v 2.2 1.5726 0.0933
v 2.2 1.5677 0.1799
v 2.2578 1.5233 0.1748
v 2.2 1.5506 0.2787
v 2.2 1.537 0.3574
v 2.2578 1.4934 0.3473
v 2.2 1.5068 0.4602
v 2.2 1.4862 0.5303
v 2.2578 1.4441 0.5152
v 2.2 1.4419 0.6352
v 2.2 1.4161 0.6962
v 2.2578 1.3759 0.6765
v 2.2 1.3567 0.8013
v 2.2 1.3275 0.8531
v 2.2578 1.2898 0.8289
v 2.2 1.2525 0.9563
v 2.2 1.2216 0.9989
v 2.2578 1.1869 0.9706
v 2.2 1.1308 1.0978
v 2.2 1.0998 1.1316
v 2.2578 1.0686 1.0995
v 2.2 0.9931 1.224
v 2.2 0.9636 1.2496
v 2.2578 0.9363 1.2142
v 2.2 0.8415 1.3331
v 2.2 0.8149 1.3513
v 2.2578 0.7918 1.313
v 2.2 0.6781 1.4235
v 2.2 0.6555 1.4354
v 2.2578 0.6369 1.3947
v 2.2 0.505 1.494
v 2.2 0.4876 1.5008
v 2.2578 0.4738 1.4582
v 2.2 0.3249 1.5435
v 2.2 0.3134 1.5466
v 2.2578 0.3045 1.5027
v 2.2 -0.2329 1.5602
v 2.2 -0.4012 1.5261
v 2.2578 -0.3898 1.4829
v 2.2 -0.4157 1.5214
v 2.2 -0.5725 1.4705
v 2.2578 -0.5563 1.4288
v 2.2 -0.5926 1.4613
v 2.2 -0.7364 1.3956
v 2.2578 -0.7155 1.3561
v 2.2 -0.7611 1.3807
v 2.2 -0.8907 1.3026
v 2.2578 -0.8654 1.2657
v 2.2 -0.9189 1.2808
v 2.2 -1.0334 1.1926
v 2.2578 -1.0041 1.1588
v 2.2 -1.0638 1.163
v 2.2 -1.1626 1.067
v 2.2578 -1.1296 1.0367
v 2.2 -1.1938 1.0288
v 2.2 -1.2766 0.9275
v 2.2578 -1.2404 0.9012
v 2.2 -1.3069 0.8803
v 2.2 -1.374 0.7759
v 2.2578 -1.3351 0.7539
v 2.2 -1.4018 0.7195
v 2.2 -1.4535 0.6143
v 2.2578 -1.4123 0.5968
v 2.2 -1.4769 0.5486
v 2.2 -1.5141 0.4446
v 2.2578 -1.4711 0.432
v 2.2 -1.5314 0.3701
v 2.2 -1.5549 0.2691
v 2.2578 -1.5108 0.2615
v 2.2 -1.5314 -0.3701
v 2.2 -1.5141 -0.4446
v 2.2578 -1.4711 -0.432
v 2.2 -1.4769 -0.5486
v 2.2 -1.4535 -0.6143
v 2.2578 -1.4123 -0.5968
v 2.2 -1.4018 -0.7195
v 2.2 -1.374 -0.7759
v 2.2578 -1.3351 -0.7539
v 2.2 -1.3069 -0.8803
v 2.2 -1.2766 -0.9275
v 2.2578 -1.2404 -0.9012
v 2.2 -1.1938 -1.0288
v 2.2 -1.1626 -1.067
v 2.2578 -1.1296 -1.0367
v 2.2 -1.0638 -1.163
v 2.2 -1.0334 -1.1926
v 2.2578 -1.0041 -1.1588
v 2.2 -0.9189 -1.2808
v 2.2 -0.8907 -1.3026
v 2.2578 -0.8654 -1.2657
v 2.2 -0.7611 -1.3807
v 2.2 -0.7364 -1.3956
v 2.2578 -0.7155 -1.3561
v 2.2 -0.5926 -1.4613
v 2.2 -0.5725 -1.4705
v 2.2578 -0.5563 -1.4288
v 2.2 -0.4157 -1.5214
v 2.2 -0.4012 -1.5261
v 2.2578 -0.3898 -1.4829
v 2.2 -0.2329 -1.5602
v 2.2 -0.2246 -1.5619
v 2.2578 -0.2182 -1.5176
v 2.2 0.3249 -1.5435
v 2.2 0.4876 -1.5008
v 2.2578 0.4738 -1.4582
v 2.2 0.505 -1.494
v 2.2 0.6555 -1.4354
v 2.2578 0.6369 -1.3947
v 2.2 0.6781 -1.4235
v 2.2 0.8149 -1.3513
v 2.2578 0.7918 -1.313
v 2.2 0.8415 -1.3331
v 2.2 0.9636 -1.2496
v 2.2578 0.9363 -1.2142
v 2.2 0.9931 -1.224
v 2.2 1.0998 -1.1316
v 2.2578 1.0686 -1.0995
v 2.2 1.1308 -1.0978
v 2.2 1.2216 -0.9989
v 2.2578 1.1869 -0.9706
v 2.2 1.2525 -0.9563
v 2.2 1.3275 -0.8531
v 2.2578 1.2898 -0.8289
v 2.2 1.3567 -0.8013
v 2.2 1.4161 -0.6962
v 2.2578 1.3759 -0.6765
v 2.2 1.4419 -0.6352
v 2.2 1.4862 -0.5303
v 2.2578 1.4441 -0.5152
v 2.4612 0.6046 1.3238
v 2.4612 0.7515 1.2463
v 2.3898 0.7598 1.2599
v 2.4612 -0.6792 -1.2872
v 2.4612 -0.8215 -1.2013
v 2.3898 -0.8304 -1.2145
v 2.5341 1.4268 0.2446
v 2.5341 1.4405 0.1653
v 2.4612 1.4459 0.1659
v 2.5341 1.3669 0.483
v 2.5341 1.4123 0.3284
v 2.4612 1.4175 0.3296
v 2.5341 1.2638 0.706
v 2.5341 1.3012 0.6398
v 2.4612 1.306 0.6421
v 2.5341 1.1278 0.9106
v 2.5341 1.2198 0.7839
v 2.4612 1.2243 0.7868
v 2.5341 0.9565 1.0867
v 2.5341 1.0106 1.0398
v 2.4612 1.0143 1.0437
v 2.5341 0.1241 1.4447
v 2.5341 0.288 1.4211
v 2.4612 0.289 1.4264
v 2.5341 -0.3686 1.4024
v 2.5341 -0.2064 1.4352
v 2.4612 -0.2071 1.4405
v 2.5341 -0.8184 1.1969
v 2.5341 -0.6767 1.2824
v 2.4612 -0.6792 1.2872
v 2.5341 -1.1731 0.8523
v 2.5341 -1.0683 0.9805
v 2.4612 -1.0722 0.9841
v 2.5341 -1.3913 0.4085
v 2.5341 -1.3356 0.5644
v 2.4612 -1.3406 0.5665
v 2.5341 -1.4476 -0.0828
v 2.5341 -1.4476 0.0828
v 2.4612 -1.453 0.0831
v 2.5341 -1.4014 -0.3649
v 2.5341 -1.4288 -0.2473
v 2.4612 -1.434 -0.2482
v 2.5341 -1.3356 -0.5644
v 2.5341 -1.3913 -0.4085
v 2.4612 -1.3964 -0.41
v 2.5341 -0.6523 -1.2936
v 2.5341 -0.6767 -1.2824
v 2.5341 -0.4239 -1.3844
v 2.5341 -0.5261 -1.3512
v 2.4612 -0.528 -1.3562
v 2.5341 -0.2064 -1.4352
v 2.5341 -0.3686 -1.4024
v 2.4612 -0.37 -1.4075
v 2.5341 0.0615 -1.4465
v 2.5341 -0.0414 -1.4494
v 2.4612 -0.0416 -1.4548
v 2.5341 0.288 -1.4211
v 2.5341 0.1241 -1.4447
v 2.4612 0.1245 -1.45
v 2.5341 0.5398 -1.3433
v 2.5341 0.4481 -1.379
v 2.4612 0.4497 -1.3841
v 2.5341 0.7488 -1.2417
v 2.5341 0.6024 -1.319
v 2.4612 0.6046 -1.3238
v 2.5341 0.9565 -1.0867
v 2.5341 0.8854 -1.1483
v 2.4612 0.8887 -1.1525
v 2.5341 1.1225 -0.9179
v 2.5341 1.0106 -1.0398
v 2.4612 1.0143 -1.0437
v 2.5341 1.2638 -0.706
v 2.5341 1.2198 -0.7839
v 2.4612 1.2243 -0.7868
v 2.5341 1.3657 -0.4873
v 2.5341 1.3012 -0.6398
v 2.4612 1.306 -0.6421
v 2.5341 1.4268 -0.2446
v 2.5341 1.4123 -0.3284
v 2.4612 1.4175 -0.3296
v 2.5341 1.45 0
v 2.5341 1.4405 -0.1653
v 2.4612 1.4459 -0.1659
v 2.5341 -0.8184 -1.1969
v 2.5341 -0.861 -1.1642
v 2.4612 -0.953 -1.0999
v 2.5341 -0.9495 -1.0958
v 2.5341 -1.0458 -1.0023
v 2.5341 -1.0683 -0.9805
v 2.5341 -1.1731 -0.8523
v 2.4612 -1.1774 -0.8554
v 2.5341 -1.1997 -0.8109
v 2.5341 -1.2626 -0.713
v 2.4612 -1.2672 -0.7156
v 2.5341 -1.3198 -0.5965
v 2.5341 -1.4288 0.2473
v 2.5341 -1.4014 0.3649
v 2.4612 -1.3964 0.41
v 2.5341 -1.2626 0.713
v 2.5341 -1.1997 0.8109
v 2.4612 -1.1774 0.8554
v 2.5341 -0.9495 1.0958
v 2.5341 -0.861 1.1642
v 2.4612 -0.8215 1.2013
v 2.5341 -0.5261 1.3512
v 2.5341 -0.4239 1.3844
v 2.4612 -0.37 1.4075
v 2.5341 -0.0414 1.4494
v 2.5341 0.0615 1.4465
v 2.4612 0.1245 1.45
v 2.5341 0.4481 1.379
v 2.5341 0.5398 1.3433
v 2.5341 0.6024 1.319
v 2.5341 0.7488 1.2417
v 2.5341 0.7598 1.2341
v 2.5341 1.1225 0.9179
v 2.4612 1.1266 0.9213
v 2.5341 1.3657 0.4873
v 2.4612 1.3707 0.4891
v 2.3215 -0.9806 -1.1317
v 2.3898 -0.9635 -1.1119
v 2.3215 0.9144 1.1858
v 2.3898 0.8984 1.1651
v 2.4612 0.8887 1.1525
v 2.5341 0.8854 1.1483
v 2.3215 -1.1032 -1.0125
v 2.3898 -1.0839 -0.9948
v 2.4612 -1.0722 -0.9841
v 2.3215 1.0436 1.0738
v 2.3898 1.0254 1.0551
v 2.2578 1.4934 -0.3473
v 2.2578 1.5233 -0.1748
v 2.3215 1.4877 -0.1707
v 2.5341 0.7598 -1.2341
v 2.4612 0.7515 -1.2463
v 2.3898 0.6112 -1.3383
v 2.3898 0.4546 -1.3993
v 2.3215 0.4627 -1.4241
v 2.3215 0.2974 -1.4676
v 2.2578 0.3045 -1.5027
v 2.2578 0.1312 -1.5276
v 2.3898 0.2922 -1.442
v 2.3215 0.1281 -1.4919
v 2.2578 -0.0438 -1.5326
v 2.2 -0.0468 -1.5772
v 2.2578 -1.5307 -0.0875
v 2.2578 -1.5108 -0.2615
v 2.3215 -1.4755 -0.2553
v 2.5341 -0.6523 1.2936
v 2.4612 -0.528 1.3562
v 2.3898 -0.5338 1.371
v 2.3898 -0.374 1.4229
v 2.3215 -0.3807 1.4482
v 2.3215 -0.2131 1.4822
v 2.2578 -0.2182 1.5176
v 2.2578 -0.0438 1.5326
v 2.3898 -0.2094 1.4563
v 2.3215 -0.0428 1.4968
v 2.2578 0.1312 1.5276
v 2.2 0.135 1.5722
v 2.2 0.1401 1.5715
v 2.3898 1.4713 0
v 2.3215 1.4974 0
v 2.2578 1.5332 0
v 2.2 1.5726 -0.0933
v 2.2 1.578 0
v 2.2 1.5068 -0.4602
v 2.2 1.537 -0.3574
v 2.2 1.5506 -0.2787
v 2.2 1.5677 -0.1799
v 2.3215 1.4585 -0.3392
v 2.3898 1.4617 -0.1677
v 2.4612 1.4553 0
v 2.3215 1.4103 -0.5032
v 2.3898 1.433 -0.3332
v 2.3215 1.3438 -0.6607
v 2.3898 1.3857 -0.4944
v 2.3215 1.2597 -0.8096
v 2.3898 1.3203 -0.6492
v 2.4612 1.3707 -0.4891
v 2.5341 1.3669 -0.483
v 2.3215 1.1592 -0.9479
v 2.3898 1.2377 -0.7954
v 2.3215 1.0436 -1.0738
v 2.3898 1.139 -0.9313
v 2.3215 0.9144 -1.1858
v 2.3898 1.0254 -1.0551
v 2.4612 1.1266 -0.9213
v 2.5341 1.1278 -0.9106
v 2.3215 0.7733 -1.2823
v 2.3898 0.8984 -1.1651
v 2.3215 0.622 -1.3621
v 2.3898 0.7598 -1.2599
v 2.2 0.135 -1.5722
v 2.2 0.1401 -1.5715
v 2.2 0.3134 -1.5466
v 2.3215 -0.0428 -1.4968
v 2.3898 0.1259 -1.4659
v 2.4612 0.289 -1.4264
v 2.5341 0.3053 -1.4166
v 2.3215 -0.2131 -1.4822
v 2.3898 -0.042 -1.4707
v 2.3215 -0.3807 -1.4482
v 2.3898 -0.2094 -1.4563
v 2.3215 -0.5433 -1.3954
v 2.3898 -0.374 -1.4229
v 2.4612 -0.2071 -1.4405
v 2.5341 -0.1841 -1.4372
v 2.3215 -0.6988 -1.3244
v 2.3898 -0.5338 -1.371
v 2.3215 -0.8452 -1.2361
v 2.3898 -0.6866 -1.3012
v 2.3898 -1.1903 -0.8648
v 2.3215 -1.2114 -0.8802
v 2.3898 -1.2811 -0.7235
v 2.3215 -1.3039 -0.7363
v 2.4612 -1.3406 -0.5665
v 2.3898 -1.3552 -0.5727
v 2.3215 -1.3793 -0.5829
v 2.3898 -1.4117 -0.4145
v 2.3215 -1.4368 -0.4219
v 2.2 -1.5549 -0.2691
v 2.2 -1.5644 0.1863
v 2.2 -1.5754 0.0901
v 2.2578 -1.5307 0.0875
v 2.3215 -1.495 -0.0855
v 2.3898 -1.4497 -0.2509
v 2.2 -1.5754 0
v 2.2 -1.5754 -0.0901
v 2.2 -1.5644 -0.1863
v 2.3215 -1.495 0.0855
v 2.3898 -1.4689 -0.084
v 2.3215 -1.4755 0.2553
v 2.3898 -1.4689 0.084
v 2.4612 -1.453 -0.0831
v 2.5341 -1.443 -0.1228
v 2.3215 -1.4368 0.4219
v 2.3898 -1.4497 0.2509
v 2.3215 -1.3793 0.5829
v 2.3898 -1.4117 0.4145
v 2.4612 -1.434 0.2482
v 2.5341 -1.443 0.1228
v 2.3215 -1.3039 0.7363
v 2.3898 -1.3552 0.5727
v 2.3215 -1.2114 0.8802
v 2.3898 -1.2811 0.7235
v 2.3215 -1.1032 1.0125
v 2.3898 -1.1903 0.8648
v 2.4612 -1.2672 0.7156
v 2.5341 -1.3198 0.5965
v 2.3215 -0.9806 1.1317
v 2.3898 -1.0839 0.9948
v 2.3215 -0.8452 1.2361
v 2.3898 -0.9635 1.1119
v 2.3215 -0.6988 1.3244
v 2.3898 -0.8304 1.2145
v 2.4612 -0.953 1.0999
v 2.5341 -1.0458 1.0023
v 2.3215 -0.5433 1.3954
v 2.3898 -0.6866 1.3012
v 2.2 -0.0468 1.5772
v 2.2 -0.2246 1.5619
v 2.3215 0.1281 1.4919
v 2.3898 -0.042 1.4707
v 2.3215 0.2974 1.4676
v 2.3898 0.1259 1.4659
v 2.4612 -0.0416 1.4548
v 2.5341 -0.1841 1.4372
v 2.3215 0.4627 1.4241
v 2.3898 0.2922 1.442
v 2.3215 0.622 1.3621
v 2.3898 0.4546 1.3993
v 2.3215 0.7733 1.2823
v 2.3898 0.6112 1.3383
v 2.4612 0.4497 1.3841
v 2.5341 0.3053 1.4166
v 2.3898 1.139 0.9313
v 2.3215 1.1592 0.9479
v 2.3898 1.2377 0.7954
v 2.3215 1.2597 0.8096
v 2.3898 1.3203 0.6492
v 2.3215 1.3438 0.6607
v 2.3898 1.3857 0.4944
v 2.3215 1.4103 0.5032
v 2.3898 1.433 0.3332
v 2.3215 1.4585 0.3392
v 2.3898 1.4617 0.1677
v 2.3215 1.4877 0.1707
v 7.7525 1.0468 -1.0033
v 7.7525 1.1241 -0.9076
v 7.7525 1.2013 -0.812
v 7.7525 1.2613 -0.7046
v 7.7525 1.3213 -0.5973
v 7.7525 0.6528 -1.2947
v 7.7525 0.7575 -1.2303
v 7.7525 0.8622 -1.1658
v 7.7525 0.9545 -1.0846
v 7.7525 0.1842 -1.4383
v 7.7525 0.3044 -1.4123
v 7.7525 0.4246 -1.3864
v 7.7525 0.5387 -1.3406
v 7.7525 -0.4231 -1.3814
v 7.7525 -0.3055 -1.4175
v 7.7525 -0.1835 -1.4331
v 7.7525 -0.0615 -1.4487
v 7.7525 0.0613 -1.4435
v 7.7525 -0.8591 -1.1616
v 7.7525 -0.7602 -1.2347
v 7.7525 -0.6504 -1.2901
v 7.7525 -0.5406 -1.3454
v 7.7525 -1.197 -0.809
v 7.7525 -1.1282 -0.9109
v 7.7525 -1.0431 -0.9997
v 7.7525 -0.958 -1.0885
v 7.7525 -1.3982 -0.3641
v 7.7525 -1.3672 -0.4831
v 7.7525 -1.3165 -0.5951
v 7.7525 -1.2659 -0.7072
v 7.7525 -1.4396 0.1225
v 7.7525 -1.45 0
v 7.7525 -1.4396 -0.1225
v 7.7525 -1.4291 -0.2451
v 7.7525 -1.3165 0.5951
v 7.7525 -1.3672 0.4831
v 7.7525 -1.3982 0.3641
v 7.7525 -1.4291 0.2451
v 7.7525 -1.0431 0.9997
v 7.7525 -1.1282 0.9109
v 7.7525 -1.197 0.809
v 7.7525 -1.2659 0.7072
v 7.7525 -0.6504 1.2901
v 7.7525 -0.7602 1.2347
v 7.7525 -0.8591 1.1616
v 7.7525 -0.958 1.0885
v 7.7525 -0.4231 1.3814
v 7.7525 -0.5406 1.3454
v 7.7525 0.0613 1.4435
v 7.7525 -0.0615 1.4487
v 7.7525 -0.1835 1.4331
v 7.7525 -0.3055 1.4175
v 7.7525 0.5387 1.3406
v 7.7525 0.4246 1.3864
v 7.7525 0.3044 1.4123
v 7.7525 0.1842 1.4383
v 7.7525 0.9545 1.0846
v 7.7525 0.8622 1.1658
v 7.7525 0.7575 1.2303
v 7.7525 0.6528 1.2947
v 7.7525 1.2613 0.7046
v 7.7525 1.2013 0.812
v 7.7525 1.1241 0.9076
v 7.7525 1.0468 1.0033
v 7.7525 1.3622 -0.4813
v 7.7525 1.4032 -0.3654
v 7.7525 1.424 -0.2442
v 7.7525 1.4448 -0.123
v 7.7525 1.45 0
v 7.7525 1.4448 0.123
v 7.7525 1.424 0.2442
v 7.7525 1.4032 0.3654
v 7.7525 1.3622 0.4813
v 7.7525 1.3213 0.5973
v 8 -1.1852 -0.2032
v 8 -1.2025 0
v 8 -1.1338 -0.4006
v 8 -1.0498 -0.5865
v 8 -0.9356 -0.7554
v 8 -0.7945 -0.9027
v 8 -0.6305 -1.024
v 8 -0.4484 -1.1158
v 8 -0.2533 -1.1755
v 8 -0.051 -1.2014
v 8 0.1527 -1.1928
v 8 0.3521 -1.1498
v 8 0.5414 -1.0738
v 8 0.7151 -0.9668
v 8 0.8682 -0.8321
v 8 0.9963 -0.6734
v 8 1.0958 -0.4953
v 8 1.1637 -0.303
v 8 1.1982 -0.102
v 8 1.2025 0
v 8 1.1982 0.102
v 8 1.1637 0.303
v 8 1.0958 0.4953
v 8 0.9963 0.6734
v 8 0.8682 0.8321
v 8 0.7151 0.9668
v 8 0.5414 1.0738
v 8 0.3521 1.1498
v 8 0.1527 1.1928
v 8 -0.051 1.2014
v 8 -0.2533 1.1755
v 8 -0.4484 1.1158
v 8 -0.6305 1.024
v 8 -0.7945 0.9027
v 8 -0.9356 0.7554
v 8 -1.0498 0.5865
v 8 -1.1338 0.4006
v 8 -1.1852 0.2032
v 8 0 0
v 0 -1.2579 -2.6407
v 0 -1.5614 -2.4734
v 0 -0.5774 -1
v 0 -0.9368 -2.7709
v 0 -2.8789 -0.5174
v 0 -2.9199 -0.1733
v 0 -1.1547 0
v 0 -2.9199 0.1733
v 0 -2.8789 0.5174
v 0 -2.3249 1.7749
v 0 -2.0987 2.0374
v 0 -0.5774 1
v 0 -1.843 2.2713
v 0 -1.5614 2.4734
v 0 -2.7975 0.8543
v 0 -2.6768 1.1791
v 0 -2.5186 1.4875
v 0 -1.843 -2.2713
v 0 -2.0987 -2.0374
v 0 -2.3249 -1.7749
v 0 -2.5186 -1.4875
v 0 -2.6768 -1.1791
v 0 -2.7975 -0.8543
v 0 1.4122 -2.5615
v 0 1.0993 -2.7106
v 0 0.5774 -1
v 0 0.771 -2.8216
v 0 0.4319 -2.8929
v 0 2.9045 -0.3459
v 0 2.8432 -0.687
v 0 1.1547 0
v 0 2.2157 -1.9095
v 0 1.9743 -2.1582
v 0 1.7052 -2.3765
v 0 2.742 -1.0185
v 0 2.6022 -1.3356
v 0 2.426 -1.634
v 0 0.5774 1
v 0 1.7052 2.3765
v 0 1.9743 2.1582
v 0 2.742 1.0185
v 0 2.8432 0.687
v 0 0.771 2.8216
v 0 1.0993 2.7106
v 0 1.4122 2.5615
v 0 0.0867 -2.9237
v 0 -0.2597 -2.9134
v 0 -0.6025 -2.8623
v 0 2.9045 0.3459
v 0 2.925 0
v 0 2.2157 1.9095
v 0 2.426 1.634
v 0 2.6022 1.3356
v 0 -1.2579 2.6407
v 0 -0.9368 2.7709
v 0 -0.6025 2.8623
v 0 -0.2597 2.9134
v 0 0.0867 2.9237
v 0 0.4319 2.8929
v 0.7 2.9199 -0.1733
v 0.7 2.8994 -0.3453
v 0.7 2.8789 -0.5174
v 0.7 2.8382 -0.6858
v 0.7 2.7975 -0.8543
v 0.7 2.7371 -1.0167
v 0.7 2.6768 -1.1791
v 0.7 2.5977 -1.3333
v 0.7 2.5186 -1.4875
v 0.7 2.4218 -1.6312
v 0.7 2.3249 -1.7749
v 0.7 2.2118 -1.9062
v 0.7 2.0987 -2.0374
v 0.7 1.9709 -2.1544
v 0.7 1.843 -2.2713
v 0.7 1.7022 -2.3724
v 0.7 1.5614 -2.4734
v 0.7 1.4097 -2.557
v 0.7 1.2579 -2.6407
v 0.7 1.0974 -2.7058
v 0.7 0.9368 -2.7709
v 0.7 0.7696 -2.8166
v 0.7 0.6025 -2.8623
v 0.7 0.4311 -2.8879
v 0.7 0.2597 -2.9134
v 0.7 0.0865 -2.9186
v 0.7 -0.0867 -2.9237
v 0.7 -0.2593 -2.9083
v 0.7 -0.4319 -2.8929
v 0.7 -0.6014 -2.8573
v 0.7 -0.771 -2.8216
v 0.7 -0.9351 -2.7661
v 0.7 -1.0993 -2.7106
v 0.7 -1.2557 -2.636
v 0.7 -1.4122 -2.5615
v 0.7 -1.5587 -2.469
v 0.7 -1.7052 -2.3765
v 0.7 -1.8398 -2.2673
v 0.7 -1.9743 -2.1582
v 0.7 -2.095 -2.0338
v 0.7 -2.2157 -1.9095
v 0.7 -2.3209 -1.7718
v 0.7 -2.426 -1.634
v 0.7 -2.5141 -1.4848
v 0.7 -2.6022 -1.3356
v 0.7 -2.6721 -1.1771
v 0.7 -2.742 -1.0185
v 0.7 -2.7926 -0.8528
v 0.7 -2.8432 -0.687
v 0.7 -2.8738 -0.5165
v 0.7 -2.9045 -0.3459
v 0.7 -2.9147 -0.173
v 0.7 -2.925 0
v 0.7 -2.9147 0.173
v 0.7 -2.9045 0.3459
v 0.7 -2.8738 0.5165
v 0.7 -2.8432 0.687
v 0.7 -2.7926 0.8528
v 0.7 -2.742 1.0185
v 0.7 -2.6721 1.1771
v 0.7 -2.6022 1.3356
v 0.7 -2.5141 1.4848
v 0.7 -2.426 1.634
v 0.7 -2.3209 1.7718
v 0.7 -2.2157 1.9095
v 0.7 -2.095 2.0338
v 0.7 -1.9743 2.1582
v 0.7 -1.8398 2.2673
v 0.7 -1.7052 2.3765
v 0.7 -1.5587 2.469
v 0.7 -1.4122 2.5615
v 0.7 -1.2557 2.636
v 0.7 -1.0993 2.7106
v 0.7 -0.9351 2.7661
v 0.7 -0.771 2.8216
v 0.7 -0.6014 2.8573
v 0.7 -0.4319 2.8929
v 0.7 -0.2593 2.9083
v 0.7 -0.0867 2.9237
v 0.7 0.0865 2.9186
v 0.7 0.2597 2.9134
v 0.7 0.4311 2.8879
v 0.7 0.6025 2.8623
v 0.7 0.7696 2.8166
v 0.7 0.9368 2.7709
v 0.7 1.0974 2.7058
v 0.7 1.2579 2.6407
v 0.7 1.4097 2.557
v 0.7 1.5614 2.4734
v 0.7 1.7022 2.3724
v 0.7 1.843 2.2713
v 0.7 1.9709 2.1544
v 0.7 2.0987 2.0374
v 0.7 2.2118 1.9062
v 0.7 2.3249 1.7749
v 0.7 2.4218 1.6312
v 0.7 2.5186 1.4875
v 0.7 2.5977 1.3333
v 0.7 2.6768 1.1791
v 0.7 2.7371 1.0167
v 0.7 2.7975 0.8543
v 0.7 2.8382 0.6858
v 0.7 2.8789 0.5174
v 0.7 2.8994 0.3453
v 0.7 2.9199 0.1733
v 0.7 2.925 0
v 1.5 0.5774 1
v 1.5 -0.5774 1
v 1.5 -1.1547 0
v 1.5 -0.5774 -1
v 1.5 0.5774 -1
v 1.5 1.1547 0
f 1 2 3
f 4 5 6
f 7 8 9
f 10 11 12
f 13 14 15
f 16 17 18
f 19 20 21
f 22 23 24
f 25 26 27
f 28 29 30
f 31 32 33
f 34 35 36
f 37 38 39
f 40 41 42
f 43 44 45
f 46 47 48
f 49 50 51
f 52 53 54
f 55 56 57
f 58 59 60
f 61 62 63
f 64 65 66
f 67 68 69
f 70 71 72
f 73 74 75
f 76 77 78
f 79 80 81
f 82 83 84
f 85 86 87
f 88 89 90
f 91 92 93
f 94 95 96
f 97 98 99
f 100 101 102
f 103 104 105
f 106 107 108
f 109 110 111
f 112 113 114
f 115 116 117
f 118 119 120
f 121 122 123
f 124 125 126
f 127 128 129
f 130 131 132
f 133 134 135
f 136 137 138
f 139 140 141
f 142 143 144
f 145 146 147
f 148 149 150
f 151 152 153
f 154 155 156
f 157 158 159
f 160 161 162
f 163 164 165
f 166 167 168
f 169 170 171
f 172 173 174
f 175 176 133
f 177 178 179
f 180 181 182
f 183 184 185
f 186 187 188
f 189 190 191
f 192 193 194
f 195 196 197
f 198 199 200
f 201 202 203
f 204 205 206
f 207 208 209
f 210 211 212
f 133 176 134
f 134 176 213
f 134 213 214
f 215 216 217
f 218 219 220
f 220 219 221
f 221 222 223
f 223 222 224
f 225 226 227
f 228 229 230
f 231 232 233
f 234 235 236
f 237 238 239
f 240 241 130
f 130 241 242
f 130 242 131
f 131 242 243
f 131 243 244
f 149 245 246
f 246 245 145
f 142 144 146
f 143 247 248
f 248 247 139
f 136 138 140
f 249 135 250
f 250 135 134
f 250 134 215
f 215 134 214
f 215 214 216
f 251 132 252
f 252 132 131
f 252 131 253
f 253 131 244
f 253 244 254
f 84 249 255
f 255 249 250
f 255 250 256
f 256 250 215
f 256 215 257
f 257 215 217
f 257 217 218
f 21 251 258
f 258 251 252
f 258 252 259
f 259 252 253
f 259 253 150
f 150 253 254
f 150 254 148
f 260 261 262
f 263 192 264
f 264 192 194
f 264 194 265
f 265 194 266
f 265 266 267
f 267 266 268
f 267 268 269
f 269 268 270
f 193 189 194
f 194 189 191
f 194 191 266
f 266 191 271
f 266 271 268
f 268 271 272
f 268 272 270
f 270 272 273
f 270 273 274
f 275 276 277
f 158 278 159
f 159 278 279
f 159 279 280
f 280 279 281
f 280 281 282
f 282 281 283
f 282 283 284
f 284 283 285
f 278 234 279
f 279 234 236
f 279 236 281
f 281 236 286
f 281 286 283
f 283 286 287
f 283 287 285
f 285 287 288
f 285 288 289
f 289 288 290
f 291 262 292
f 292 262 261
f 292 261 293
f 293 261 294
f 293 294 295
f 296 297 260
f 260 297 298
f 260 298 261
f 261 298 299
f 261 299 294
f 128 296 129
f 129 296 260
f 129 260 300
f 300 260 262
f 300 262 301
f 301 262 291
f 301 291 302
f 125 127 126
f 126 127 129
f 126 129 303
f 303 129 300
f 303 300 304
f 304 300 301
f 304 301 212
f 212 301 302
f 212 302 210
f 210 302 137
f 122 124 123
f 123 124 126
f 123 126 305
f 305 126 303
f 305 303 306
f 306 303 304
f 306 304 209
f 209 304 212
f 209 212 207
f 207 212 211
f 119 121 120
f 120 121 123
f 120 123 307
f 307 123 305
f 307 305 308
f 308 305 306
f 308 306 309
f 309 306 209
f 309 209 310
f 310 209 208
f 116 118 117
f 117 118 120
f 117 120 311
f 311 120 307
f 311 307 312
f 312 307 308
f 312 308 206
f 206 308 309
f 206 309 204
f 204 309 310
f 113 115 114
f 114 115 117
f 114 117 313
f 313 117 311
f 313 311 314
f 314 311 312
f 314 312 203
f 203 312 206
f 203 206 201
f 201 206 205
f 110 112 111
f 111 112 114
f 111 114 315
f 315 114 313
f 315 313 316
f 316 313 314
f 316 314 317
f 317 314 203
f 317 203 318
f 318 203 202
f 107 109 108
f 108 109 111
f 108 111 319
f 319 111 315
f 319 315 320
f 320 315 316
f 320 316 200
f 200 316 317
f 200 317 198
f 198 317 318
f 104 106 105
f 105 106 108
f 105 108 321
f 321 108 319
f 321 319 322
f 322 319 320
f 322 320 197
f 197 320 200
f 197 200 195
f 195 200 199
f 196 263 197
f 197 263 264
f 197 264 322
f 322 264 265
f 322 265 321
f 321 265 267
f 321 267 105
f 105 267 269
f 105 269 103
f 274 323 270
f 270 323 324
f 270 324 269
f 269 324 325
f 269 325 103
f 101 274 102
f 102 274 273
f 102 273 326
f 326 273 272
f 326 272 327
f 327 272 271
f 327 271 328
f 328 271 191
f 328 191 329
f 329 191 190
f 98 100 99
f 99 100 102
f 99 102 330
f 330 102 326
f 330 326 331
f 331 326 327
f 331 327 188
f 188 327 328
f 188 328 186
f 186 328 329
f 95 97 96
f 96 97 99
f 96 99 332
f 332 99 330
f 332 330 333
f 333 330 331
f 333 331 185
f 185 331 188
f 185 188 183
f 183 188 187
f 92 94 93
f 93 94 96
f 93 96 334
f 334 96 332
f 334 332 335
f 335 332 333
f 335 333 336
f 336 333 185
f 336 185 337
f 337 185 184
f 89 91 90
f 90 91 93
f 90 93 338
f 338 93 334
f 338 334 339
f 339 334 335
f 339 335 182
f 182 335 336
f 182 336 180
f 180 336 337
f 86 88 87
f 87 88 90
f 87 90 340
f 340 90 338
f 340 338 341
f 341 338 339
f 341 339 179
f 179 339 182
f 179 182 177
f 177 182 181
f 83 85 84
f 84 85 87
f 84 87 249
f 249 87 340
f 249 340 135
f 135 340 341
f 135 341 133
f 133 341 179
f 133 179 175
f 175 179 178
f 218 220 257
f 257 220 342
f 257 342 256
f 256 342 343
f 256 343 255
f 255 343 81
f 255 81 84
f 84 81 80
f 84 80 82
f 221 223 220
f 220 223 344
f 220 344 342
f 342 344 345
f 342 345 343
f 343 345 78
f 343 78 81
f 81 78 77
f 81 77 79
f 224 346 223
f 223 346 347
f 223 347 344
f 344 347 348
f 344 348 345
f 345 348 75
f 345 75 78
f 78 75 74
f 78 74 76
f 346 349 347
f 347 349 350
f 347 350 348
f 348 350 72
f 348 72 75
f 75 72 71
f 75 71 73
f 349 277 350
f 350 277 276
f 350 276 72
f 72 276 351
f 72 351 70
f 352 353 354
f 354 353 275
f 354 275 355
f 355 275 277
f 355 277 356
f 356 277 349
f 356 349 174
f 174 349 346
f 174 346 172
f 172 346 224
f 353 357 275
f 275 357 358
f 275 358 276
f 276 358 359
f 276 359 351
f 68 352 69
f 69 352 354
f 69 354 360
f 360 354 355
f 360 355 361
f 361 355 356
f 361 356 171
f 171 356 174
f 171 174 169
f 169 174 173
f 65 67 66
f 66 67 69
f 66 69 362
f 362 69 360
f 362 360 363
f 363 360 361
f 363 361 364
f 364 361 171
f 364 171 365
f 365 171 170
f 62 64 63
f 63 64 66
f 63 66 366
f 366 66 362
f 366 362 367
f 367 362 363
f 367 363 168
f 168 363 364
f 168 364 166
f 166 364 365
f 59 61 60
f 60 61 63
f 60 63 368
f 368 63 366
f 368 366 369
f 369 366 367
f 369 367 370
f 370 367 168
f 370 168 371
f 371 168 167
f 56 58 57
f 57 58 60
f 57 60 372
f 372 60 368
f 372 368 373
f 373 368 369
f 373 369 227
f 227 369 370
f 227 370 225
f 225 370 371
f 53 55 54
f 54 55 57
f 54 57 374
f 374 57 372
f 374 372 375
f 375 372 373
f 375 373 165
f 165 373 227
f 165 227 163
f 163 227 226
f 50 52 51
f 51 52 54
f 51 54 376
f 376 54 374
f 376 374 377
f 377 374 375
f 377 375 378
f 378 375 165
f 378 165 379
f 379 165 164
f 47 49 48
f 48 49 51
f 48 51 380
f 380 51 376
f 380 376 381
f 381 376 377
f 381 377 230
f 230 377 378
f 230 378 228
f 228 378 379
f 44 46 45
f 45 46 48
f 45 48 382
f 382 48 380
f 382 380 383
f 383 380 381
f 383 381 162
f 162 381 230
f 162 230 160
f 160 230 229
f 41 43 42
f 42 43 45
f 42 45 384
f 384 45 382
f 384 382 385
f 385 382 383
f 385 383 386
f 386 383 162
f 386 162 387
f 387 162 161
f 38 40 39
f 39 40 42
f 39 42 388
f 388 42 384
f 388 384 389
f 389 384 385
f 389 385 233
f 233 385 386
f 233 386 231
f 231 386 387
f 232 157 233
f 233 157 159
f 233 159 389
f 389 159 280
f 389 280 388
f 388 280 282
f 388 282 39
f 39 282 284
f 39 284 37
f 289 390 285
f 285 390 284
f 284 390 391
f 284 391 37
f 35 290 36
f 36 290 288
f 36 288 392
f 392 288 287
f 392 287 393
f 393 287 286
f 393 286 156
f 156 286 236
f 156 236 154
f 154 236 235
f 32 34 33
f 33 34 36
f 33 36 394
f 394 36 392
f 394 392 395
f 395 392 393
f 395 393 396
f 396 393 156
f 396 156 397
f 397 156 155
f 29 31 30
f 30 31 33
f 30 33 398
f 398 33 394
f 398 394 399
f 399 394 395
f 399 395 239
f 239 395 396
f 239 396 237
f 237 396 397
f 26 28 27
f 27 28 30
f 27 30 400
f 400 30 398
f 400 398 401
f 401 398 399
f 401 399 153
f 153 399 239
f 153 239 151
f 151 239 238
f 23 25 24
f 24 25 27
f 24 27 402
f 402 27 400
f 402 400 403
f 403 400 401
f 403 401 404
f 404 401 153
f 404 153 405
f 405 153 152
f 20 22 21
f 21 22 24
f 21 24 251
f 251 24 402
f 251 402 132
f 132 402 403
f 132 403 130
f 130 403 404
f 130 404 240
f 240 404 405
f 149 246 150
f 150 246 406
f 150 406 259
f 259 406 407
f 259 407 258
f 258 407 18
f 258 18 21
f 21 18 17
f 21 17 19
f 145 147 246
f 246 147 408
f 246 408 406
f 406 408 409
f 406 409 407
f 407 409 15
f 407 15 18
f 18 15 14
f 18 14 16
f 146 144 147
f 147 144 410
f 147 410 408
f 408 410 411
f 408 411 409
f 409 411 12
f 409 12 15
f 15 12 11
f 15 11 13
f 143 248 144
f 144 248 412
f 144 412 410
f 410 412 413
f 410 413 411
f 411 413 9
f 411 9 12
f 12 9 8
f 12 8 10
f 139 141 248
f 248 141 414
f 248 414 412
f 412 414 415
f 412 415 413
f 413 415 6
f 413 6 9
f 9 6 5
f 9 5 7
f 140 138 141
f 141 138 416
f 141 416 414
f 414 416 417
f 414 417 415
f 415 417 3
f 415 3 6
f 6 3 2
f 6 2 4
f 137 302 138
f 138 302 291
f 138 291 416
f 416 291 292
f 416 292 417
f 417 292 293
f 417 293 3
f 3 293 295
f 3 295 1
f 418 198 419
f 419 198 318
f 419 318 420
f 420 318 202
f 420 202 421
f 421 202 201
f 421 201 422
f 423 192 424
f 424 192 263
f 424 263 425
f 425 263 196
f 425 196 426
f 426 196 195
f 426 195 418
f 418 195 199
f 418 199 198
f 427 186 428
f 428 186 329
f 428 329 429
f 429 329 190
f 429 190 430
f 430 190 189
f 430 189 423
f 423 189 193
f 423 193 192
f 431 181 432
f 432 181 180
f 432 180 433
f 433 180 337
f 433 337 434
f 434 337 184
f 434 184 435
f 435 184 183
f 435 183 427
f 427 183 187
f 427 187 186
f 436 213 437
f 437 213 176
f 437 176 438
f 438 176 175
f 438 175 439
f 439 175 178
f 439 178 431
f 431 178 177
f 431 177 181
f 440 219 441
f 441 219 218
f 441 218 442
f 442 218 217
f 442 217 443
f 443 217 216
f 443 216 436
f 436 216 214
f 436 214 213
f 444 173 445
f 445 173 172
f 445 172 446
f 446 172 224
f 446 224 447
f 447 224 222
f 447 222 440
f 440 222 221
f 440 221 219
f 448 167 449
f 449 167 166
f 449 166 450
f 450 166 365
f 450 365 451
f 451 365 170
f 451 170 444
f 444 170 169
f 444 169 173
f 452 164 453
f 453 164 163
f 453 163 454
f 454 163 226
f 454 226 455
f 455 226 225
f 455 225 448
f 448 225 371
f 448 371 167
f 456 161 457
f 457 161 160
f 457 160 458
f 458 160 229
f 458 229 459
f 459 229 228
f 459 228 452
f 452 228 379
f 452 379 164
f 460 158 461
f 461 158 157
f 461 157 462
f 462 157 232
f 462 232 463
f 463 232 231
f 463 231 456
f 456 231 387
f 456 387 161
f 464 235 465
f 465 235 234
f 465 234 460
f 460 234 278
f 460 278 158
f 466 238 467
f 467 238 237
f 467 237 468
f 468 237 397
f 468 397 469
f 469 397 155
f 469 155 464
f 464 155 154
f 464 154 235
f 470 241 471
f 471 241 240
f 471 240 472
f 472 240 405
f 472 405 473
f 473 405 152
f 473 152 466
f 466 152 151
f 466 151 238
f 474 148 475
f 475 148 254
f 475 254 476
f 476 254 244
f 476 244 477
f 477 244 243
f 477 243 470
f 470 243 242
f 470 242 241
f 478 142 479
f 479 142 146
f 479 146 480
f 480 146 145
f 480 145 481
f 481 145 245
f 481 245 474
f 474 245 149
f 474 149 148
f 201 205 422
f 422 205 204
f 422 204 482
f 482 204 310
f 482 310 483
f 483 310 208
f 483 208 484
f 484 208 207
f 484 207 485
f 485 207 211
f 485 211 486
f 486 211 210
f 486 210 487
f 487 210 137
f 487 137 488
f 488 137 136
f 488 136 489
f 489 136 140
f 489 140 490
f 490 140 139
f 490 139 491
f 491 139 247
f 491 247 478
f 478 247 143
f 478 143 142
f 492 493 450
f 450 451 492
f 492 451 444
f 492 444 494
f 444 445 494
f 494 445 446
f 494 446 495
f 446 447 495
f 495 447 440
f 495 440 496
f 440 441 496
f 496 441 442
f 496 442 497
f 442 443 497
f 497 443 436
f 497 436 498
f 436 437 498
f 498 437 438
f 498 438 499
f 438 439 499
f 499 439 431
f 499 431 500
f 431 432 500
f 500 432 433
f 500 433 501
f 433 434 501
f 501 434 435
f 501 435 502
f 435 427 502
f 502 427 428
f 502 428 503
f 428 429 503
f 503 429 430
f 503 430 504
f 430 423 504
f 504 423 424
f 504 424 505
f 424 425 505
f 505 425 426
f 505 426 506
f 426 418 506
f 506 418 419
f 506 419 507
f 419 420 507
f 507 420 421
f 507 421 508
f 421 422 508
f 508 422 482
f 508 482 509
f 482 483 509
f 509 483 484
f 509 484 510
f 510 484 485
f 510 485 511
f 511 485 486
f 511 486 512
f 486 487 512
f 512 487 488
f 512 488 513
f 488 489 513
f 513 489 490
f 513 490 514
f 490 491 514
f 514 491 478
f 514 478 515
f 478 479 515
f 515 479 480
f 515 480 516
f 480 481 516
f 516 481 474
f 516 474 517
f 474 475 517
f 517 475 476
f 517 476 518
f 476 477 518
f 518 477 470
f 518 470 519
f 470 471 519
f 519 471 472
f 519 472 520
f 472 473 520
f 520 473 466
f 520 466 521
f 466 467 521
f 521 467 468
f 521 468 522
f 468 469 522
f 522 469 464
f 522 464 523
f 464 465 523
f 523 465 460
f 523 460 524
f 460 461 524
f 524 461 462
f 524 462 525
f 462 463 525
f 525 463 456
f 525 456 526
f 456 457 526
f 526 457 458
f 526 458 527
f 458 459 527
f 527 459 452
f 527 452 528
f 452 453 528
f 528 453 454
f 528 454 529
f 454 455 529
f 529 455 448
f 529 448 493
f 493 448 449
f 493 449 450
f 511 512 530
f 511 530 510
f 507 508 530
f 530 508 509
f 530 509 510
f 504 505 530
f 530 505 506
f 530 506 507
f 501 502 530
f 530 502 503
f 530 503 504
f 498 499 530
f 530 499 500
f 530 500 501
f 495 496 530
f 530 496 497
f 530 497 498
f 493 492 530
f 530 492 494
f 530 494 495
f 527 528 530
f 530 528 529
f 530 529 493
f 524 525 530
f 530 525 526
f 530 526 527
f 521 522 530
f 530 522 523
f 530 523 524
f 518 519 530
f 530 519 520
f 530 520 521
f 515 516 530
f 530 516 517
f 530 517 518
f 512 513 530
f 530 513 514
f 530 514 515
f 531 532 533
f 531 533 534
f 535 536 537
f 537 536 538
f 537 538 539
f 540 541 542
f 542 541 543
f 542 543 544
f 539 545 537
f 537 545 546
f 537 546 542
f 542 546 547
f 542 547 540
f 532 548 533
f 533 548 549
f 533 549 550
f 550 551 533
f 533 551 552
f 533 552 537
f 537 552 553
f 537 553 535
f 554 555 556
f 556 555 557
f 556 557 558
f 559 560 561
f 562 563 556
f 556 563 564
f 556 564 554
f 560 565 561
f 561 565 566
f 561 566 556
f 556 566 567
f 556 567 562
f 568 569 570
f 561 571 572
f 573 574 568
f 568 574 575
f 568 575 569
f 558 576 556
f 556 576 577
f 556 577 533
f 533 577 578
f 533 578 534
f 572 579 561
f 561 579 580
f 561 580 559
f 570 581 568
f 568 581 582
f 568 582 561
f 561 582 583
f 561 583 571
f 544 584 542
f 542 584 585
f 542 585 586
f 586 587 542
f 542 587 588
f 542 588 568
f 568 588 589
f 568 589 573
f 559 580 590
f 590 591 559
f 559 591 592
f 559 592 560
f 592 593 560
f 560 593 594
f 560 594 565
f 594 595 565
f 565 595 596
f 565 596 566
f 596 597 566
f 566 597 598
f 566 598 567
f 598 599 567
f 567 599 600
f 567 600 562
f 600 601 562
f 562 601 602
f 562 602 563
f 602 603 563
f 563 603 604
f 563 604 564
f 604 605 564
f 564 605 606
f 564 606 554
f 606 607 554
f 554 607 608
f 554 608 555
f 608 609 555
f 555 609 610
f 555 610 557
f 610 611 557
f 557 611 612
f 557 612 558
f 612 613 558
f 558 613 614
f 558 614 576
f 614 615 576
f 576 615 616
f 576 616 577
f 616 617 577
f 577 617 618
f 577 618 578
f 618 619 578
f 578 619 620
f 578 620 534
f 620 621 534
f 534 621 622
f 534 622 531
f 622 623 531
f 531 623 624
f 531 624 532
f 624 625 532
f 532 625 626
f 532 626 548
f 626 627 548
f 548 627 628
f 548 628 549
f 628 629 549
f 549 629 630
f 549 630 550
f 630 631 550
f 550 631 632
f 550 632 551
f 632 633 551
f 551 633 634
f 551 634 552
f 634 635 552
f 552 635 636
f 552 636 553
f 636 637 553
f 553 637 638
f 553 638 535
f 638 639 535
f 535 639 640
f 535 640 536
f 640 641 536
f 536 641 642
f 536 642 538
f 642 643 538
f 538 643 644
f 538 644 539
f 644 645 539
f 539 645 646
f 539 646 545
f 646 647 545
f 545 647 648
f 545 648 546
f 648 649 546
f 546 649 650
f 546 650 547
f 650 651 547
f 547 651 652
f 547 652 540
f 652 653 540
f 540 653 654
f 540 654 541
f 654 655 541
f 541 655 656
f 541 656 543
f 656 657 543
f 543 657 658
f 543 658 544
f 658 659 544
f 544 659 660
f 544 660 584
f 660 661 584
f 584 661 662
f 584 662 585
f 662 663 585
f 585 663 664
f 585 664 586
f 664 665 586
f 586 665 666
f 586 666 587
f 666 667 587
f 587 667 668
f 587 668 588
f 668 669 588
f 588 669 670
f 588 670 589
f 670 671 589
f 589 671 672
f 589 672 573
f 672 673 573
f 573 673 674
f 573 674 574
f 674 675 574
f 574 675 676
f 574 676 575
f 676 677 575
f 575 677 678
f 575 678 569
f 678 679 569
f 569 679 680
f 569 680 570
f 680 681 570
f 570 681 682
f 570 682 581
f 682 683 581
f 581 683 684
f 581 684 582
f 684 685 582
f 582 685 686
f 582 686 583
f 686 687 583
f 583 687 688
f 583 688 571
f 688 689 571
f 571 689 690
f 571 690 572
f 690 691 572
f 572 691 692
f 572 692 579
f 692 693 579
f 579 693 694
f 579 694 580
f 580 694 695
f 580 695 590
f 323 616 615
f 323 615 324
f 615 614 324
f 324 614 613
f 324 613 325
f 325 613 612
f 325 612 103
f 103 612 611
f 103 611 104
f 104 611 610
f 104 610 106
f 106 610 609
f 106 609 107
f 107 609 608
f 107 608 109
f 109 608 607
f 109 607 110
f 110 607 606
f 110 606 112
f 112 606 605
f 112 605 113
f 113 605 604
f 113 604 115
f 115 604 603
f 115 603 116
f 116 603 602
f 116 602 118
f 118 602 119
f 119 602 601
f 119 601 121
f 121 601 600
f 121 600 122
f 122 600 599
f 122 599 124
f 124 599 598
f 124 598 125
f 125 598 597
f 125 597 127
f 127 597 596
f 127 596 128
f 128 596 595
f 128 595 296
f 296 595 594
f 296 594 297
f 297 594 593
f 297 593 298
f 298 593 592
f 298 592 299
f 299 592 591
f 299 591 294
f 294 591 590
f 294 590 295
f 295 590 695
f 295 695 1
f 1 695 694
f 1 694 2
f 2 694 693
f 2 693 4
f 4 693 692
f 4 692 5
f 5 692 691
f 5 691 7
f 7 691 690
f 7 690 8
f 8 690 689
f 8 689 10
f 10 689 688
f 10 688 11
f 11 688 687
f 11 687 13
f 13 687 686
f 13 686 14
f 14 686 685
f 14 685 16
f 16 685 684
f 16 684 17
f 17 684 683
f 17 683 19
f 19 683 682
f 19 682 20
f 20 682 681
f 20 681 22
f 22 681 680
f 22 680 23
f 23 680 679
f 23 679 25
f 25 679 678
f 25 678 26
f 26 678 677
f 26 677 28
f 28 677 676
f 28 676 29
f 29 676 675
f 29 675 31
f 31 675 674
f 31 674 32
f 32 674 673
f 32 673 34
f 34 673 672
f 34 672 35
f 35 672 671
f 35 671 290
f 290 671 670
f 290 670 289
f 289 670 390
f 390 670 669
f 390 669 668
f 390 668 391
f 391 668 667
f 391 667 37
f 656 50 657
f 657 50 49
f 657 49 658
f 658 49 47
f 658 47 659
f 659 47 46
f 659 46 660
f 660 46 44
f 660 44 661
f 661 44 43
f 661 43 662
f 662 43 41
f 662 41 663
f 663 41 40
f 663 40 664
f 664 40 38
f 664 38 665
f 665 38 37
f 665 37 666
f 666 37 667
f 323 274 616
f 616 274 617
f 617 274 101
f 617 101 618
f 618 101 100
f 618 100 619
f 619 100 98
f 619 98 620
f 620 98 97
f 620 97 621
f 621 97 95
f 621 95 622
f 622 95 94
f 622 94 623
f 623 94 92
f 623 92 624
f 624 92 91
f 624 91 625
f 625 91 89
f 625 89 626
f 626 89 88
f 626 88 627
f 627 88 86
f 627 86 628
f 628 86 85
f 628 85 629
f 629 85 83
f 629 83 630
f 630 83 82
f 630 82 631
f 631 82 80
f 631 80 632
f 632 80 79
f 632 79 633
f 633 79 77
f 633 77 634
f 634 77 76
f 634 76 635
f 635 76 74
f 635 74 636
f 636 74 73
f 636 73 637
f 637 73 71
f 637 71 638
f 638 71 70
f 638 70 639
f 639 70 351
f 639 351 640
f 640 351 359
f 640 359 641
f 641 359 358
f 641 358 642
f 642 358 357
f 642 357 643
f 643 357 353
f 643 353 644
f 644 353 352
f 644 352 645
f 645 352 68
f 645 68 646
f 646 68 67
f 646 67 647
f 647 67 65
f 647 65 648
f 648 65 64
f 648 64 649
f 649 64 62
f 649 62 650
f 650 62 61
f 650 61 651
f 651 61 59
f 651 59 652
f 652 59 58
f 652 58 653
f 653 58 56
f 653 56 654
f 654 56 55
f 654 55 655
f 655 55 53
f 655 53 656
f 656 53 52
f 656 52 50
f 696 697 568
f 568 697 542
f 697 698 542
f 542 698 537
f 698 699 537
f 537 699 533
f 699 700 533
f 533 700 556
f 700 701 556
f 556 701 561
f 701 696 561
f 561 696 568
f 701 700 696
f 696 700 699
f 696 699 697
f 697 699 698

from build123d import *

# Parameters (mm, degrees)
CUT_EXTRUDE1_DEPTH = 1.5


with BuildPart() as part:
    # Sketch1 → Revolve1 (revolve)
    with BuildSketch(Plane.XY):
        with BuildLine():
            Line((2.534073147, 1.45), (7.752512627, 1.45))
            Line((7.752512627, 1.45), (8, 1.202512627))
            Line((8, 1.202512627), (8, 0))
            Line((8, 0), (0, 0))
            Line((0, 0), (0, 2.925))
            Line((0, 2.925), (0.7, 2.925))
            Line((0.7, 2.925), (2.2, 1.577985037))
            ThreePointArc((2.2, 1.577985037), (2.355198165, 1.483091293), (2.534073147, 1.45))
        make_face()
    revolve(axis=Axis((0, 0, 0), (-1, 0, 0)))

    # Sketch2 → Cut-Extrude1 (cut)
    with BuildSketch(Plane.ZY):
        Polygon((1, 0.577350269), (0, 1.154700538), (-1, 0.577350269), (-1, -0.577350269), (0, -1.154700538), (1, -0.577350269), align=None)
    extrude(amount=-CUT_EXTRUDE1_DEPTH, mode=Mode.SUBTRACT)


solid = part.part
